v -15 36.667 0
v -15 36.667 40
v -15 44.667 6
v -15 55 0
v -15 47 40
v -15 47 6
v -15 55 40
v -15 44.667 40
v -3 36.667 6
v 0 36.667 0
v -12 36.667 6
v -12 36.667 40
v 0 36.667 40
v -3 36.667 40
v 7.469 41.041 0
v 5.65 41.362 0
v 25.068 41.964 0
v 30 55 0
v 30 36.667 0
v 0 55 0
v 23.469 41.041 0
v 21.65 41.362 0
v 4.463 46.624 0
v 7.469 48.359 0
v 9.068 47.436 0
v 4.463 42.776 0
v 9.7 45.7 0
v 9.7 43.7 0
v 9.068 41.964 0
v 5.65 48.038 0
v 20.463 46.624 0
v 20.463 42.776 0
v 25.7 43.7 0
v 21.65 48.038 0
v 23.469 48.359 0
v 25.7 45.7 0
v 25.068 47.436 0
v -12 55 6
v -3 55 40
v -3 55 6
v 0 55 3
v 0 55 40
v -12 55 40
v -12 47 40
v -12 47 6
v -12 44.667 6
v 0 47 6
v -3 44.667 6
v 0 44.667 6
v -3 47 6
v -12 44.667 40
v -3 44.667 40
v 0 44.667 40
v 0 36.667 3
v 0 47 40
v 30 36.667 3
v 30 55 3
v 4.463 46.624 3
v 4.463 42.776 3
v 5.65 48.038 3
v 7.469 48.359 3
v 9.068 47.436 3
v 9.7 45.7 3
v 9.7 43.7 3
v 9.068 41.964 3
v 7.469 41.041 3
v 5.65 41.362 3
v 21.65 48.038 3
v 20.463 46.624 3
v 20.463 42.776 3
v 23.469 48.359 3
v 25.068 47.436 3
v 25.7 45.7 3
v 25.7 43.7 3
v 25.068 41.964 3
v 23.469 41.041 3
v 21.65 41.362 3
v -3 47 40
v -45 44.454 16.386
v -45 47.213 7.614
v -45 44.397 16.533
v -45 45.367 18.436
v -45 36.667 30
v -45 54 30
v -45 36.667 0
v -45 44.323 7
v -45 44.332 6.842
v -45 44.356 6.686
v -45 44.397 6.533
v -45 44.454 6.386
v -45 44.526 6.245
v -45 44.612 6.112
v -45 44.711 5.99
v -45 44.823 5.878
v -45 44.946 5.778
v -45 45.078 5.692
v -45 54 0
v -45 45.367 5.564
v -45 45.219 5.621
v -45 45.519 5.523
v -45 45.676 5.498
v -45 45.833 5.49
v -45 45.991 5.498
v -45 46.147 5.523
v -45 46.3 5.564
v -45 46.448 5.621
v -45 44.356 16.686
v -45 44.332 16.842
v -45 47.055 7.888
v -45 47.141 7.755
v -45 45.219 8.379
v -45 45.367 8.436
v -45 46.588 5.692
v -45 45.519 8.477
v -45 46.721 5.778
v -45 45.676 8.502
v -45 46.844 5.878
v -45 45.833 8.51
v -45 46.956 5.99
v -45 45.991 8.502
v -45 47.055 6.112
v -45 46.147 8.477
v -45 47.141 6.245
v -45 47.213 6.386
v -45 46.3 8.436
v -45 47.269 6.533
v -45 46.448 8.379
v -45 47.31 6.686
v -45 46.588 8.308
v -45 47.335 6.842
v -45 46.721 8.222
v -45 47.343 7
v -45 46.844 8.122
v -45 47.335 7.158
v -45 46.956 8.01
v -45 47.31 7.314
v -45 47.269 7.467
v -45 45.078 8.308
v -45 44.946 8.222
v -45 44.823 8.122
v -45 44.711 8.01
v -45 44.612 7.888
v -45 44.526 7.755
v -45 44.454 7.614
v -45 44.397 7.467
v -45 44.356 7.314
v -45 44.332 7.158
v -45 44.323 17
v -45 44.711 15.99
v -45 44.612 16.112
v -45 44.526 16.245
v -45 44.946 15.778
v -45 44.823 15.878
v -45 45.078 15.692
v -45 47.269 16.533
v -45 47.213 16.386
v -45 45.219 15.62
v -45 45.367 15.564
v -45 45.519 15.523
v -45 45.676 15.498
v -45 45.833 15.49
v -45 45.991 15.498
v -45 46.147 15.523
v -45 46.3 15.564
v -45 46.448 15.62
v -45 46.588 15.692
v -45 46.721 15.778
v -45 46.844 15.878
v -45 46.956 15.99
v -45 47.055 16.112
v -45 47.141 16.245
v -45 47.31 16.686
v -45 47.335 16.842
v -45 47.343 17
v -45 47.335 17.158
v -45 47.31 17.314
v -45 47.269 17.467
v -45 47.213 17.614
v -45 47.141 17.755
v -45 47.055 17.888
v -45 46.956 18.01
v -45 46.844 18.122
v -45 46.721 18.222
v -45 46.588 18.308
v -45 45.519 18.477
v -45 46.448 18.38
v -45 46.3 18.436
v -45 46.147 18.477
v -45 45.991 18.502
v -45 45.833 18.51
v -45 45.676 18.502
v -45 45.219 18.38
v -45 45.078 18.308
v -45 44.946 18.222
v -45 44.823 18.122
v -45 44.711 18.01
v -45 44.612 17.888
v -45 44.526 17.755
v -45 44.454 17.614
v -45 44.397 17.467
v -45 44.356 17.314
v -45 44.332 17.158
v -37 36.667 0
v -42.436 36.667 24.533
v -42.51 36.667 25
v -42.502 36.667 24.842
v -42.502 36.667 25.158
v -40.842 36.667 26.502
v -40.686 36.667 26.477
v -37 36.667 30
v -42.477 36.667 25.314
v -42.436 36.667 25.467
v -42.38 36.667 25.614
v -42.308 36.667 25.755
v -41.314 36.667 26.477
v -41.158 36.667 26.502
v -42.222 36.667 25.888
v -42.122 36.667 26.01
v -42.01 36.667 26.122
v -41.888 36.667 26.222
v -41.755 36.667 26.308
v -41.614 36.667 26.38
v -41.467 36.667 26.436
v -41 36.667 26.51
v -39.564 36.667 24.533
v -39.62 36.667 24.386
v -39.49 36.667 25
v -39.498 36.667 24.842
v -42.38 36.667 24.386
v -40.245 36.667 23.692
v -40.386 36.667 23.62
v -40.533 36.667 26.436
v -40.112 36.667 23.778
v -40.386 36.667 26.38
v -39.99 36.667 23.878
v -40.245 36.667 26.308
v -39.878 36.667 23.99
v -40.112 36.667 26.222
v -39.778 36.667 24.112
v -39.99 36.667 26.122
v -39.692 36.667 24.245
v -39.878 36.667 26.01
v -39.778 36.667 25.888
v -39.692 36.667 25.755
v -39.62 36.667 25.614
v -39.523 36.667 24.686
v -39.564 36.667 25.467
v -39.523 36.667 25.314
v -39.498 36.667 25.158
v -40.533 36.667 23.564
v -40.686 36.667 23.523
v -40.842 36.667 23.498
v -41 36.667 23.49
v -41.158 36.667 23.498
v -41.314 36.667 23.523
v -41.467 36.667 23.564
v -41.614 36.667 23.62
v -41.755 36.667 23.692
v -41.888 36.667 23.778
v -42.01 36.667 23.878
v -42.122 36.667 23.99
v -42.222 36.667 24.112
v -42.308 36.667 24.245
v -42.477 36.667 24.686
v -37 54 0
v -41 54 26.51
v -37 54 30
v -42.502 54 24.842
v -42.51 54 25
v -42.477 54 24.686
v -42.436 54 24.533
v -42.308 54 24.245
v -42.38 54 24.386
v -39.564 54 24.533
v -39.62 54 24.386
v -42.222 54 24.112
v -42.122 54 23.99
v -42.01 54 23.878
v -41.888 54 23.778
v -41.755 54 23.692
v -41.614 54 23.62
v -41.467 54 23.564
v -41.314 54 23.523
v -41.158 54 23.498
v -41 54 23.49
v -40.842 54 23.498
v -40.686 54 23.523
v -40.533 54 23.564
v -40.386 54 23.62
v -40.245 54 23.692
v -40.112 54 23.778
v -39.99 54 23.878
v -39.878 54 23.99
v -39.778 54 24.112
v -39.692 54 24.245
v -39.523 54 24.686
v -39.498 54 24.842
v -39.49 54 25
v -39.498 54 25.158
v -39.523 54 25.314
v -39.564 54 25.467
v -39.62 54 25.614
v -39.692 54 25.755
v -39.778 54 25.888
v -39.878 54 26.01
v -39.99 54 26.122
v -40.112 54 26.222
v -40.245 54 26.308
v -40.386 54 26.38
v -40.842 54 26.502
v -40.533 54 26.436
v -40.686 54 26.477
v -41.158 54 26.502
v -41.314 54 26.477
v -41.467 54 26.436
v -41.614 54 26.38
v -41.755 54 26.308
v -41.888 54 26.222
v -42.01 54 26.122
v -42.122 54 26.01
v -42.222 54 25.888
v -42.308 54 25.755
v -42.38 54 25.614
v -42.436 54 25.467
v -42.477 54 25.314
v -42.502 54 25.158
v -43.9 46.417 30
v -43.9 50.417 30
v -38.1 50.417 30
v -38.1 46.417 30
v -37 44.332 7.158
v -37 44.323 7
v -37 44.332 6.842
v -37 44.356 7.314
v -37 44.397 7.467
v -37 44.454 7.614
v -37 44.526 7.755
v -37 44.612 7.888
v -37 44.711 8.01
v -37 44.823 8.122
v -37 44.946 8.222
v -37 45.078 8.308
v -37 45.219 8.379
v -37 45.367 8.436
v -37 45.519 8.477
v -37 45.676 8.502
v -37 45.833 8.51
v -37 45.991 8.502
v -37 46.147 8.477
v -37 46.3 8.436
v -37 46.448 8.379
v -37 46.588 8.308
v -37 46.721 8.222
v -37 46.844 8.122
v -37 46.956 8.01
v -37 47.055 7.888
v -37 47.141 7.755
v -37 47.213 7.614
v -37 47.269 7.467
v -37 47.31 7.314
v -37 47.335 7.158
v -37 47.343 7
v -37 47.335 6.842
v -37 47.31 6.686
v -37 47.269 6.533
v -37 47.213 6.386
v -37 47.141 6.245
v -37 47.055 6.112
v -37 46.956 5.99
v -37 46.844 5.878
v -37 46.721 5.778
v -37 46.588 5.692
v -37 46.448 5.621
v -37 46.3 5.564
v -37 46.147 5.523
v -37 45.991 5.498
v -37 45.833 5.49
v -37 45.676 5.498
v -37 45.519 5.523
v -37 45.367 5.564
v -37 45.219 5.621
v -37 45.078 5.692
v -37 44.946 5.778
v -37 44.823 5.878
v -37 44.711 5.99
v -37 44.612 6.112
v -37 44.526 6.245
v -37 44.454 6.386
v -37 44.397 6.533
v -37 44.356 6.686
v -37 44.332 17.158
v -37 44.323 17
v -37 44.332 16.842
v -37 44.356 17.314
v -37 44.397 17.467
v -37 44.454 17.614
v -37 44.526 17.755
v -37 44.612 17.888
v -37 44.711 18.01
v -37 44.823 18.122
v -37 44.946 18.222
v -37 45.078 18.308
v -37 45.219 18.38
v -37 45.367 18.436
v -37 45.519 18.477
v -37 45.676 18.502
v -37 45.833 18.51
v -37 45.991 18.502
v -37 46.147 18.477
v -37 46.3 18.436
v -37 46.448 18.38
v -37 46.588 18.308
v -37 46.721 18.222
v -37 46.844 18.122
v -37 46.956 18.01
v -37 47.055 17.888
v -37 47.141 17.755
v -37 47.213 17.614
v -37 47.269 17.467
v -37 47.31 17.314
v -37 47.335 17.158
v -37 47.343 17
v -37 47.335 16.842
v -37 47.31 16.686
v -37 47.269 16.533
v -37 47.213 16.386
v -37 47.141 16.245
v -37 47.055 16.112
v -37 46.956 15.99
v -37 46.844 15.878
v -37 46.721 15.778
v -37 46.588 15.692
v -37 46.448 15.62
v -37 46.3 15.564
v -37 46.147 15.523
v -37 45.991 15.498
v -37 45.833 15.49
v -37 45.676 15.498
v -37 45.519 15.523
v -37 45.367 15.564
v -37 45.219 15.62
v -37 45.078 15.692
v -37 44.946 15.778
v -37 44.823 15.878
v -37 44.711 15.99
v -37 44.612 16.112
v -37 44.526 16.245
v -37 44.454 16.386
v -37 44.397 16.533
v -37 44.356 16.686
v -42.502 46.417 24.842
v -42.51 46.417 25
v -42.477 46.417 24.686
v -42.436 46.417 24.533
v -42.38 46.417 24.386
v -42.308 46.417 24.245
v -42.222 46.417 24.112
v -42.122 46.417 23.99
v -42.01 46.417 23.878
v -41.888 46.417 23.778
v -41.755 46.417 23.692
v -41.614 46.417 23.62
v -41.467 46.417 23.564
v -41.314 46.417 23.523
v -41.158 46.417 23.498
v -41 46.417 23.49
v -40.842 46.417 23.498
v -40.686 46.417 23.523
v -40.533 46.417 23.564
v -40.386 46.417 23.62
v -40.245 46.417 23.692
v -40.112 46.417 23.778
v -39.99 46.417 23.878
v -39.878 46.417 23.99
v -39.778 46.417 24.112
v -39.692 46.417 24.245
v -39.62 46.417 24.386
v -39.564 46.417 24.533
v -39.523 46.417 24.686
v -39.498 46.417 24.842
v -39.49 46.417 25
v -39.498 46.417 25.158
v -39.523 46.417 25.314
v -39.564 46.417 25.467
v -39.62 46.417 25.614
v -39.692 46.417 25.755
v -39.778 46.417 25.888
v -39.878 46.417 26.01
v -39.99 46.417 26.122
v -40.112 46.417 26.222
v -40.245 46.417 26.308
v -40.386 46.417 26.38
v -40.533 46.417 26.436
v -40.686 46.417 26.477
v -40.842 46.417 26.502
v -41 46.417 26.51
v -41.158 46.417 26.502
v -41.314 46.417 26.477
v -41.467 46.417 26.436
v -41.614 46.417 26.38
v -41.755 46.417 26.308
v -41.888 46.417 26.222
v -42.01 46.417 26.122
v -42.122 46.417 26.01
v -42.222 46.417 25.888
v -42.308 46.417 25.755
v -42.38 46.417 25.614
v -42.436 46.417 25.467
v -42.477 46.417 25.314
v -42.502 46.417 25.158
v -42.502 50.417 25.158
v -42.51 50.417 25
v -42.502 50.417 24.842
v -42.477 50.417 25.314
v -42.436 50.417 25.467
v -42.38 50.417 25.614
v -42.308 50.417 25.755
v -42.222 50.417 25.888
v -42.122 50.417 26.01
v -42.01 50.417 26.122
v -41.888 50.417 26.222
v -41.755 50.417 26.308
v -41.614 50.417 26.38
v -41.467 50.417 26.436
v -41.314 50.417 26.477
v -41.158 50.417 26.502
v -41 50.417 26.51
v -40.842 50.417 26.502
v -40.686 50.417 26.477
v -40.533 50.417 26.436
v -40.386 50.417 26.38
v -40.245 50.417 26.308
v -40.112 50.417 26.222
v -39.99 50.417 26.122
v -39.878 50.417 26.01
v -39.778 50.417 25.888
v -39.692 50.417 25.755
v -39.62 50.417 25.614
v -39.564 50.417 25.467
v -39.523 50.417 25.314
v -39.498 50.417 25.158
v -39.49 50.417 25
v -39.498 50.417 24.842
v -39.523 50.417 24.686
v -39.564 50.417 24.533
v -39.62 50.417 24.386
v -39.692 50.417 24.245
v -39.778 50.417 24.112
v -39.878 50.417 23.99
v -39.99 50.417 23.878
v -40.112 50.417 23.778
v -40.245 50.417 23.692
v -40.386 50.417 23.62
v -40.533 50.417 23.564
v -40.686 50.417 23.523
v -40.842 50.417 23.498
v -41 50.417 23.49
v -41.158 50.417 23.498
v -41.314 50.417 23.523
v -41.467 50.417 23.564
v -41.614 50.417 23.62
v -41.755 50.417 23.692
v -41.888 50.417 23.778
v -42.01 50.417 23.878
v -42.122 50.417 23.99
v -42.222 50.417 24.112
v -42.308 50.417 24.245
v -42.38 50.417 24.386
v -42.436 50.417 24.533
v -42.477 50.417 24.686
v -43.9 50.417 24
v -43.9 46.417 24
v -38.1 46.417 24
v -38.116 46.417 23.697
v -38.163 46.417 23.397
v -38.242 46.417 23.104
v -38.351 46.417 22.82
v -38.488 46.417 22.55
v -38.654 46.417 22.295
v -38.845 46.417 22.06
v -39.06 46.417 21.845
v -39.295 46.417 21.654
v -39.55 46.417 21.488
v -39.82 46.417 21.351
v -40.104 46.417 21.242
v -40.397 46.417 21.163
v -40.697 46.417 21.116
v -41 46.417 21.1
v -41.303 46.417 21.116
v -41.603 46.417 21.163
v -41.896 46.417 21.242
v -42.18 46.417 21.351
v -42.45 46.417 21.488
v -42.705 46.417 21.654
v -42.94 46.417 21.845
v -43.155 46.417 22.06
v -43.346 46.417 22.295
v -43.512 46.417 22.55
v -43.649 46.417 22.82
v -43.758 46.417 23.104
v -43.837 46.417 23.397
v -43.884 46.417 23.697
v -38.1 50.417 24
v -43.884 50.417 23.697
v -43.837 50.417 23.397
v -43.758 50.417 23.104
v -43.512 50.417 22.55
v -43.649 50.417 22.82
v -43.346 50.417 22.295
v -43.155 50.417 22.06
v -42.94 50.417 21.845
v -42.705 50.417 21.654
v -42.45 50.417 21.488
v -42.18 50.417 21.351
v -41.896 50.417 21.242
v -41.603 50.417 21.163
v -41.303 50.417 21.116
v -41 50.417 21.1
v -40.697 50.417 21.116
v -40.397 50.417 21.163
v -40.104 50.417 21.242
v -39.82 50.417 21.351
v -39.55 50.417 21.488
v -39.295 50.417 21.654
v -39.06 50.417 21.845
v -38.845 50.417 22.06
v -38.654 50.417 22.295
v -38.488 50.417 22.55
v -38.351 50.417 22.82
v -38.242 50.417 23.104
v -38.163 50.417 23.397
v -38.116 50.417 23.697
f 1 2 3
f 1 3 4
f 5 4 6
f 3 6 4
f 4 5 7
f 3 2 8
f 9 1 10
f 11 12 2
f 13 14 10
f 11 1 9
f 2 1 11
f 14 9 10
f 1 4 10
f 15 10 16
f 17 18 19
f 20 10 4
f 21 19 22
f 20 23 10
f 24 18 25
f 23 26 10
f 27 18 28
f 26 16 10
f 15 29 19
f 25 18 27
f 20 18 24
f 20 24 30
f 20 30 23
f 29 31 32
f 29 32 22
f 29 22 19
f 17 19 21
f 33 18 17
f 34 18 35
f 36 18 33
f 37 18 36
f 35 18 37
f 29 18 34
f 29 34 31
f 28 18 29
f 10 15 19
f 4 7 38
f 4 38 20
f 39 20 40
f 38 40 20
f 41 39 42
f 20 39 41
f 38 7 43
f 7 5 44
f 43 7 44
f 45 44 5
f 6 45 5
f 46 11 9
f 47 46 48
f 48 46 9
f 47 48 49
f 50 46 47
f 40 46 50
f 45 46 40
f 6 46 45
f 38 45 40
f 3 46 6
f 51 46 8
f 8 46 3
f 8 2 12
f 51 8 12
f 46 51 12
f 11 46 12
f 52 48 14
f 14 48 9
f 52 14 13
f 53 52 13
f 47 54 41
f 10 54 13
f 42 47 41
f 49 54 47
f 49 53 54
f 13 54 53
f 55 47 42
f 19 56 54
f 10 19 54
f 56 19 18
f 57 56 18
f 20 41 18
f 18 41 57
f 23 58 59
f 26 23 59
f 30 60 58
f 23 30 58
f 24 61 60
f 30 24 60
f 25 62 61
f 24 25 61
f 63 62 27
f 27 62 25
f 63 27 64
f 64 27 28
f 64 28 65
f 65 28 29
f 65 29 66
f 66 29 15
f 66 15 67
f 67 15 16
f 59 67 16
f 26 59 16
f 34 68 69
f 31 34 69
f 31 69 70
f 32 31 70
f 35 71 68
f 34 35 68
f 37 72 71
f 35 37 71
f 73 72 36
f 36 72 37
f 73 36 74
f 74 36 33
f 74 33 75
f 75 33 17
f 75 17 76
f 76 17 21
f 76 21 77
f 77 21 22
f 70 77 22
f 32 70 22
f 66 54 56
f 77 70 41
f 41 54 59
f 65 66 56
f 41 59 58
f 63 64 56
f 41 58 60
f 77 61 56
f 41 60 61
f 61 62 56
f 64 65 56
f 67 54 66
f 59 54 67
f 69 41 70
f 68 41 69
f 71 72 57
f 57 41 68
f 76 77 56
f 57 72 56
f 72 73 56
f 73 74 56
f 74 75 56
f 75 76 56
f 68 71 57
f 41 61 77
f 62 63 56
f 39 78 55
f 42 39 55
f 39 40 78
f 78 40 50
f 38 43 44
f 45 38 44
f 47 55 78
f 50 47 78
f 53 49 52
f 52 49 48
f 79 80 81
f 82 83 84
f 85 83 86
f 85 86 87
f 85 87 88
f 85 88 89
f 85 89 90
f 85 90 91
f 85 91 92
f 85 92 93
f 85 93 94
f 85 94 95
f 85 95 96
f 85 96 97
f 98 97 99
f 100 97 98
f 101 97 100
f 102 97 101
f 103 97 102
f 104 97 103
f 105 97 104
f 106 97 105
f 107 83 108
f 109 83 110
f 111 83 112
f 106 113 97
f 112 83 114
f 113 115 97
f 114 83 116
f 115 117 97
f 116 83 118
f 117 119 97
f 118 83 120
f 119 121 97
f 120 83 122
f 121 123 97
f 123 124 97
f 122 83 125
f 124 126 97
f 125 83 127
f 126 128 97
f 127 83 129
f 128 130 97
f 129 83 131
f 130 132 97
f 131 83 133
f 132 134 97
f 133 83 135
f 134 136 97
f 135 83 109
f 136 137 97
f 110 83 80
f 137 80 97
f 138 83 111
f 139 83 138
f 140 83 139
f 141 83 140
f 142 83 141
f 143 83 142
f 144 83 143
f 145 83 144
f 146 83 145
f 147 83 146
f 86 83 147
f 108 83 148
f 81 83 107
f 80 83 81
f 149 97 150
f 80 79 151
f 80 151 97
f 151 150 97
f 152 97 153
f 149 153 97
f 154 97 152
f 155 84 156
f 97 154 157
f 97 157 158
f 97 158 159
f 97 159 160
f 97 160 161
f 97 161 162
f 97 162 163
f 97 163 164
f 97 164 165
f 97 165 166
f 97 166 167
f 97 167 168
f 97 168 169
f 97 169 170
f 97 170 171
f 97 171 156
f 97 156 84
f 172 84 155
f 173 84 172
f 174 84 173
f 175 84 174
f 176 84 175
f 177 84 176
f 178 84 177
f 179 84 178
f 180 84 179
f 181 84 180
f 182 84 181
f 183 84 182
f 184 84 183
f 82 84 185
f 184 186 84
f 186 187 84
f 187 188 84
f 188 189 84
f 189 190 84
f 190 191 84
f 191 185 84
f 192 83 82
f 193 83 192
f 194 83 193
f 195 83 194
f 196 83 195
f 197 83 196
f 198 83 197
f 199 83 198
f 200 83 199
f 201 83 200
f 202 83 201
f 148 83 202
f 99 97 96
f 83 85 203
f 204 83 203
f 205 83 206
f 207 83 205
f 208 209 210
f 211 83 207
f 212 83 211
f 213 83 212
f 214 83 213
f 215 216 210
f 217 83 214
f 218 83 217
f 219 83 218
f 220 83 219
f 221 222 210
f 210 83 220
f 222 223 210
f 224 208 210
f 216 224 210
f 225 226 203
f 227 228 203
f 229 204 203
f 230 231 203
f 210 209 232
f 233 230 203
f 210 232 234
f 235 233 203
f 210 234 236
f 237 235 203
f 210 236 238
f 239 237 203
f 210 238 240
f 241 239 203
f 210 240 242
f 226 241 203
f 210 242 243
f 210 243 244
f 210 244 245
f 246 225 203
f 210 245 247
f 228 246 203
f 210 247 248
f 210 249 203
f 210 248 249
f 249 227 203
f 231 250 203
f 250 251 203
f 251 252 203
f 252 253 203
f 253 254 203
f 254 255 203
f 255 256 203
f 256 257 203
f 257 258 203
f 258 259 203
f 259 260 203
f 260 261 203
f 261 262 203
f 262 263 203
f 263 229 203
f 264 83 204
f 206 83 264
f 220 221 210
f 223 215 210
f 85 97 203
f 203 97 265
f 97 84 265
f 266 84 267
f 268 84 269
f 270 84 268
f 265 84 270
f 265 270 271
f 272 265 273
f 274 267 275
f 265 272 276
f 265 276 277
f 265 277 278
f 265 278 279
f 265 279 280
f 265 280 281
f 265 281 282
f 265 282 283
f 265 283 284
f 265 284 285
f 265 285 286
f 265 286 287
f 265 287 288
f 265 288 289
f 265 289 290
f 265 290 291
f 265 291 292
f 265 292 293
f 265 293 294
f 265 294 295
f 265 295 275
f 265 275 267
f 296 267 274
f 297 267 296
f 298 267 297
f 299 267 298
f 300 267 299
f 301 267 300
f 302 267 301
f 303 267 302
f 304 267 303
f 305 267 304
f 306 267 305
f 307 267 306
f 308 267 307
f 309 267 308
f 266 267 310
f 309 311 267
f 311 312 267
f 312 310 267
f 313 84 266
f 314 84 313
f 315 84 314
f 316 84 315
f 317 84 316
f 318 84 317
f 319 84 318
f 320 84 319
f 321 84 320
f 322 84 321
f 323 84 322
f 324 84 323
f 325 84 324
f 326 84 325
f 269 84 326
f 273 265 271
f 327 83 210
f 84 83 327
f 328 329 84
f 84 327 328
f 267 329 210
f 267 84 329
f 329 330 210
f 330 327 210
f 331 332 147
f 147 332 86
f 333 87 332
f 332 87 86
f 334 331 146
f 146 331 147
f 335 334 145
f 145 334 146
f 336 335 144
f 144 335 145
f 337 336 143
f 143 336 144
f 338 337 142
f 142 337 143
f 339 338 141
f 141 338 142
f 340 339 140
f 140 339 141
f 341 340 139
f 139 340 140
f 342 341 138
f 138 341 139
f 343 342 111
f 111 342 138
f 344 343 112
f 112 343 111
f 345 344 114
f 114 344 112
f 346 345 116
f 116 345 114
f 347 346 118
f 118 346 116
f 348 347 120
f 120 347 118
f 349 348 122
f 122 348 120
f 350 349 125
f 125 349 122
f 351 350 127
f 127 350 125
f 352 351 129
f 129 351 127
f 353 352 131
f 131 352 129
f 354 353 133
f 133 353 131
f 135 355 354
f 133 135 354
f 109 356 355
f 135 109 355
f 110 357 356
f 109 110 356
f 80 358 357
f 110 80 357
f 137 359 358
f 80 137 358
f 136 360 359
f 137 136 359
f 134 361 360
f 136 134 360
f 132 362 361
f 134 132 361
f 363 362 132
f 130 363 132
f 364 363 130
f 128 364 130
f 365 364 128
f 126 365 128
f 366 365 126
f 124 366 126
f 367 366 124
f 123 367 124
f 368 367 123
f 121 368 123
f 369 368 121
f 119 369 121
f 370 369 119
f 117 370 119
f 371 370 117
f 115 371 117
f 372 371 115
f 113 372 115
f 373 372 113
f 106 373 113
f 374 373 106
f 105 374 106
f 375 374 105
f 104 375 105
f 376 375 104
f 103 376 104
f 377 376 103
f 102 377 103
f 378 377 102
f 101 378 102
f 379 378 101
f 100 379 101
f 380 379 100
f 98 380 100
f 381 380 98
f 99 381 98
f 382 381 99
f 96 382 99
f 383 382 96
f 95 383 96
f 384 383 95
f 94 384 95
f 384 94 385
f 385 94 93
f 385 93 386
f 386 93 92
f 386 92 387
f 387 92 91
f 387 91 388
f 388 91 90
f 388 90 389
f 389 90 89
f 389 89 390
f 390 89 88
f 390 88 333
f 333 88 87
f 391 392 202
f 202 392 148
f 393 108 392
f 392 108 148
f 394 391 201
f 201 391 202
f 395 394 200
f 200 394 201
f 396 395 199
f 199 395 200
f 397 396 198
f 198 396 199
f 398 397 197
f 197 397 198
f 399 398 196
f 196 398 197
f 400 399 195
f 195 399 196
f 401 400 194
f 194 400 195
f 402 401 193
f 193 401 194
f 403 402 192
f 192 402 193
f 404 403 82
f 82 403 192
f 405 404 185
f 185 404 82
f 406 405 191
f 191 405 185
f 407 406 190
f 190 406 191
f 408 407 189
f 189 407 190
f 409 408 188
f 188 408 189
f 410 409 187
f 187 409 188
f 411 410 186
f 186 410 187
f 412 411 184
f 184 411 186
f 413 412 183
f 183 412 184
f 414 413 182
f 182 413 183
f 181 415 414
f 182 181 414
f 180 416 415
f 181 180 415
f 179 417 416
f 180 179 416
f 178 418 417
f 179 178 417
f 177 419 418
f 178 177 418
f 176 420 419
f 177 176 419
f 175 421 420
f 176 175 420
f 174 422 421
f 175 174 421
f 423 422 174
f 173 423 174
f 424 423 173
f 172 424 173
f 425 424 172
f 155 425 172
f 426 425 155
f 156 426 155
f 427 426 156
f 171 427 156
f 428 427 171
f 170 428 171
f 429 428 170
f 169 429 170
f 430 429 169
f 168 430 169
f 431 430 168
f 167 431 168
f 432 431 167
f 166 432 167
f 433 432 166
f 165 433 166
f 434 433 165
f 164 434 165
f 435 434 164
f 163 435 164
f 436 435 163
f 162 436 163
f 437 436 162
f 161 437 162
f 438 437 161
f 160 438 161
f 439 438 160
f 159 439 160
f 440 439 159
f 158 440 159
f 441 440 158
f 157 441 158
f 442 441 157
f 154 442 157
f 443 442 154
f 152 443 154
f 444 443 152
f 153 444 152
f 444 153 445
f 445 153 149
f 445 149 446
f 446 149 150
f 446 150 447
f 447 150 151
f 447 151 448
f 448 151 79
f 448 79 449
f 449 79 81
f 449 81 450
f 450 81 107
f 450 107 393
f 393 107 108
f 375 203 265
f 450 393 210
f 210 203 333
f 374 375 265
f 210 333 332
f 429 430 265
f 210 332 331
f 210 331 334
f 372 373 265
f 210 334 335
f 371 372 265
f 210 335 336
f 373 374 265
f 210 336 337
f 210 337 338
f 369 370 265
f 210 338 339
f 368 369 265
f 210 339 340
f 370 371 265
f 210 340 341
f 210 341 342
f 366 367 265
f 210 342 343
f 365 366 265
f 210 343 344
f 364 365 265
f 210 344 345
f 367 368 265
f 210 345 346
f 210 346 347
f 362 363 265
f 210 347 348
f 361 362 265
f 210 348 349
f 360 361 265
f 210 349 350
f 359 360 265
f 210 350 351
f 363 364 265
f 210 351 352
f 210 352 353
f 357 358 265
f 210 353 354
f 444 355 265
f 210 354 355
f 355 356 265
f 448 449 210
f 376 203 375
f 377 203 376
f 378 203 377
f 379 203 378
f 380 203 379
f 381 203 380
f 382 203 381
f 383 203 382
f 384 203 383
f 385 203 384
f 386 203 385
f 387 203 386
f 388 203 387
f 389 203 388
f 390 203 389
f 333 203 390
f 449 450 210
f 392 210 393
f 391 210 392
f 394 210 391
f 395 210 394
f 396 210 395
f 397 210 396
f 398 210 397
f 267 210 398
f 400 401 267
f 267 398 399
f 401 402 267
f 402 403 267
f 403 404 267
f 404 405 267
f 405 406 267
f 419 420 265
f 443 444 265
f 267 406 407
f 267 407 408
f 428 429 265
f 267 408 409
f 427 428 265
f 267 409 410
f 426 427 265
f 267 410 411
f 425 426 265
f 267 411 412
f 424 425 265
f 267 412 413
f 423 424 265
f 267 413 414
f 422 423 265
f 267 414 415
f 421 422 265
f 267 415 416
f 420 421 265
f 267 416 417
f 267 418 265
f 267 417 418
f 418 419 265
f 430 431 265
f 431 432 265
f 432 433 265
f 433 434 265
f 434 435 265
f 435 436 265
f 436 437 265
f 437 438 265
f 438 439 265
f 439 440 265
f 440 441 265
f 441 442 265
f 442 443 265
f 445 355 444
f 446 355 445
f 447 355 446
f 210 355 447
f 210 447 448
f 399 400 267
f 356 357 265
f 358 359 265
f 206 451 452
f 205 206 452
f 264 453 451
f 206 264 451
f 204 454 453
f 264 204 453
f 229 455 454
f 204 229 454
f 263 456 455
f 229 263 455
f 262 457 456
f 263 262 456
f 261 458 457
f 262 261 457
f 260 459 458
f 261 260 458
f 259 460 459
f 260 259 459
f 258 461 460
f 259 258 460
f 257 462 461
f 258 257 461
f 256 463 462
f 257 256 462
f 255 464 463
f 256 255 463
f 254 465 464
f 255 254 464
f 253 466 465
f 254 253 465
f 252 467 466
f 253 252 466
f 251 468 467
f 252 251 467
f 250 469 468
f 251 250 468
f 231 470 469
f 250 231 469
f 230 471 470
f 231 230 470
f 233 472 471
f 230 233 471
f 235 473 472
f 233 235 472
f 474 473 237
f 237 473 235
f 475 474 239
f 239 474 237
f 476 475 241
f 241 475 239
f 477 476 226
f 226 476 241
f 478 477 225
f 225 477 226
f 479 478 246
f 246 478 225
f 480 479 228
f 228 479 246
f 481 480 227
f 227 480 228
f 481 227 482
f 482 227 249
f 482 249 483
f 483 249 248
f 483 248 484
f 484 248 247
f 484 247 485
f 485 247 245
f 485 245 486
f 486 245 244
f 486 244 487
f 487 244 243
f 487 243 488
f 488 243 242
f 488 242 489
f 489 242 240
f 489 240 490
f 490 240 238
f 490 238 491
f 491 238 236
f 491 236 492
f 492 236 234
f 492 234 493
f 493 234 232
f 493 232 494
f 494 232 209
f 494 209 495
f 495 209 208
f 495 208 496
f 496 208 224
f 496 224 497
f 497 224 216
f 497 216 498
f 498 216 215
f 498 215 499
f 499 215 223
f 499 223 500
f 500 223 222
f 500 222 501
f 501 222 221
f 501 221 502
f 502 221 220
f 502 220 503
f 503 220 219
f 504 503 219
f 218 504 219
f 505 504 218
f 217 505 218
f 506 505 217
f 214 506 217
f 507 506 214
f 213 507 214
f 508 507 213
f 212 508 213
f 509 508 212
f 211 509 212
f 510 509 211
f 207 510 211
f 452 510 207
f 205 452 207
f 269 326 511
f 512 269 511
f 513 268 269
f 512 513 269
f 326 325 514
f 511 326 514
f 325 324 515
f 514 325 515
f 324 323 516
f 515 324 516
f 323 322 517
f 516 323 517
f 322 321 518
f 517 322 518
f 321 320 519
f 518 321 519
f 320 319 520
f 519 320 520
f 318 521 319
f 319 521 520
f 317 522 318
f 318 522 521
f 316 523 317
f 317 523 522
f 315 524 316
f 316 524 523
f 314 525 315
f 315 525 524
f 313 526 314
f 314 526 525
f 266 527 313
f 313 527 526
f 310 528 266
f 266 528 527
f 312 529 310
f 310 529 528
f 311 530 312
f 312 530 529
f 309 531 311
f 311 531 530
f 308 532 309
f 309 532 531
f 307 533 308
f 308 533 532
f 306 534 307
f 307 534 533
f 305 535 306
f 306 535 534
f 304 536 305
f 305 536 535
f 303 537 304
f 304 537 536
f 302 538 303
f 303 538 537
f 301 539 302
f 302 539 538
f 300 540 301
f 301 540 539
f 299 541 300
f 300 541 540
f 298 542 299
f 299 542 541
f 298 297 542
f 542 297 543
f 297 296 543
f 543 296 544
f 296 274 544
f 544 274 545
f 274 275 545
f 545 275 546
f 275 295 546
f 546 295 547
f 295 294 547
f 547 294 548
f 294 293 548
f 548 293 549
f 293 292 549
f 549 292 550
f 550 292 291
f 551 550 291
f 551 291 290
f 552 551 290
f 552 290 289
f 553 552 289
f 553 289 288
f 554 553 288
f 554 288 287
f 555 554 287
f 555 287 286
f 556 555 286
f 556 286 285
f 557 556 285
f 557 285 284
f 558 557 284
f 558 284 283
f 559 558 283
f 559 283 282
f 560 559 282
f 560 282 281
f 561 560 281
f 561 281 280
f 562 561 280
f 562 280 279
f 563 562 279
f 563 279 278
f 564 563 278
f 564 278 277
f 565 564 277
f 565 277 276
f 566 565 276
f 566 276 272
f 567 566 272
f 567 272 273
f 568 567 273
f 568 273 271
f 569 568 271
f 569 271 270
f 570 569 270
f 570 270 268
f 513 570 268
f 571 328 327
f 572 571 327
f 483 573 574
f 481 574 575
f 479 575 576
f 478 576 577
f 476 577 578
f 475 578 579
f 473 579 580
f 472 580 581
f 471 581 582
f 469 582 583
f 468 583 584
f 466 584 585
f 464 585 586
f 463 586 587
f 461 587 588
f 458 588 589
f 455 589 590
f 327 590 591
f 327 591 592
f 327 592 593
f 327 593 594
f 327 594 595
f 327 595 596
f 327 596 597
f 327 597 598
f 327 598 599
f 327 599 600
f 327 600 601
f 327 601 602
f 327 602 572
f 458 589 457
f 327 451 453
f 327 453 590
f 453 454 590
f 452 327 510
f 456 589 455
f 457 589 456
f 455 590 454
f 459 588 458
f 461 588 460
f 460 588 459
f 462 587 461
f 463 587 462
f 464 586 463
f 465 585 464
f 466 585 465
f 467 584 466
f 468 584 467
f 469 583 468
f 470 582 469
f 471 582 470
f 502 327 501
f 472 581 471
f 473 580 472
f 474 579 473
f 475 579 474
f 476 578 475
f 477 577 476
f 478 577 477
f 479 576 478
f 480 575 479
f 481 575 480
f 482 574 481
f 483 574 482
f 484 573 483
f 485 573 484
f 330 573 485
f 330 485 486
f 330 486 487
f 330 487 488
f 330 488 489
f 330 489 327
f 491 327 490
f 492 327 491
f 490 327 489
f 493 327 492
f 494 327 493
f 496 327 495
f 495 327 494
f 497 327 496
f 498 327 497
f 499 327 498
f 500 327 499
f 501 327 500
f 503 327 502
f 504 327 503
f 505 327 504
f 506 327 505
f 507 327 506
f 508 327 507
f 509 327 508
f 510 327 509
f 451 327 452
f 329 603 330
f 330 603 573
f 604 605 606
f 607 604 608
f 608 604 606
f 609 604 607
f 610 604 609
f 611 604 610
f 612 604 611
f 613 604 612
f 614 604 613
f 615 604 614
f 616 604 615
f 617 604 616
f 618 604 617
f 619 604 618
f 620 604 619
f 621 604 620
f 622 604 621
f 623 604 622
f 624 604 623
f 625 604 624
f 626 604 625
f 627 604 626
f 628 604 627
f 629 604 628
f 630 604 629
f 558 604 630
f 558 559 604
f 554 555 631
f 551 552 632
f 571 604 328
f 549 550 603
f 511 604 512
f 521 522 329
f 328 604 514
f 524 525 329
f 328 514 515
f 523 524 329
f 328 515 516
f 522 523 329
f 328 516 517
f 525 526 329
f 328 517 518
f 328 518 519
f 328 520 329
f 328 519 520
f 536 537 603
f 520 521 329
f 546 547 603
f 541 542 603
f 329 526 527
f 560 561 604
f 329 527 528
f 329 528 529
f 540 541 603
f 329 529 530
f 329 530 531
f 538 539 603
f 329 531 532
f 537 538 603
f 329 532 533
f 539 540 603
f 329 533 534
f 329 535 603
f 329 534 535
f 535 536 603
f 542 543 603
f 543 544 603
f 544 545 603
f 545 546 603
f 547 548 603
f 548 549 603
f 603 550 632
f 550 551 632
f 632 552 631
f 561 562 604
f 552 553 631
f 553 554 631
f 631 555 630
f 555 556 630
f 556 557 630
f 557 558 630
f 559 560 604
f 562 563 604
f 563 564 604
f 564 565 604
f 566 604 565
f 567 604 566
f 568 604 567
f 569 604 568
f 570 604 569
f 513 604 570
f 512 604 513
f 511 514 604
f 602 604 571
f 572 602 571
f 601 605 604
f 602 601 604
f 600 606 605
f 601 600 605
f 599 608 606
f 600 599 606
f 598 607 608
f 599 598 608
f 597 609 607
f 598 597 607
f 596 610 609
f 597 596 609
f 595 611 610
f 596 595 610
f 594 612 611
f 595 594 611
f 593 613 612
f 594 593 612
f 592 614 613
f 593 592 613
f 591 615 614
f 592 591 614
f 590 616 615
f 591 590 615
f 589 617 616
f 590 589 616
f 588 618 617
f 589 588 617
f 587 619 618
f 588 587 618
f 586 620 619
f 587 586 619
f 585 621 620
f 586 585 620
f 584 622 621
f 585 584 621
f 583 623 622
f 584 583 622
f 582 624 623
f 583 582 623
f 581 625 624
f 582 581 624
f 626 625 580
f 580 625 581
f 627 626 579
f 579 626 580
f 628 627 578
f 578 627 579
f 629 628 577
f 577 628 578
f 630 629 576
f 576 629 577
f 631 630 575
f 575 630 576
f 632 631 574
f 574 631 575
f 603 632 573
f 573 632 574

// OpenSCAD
l1=30;
l2=55;
h=3;
r5=2.5*1.08;
r3=1.5*1.08;
difference(){
cube([l1,l2,h]);
translate([0,-l2/3,0]){cube([l1,l2,h]);}
hull(){for(i=[0:1]){translate([l1-7,38+(5+r5)-(2*(1-i)),0]){cylinder(2*h,r5,r5,true);}}}
hull(){for(i=[0:1]){translate([l1-23,38+(5+r5)-(2*(1-i)),0]){cylinder(2*h,r5,r5,true);}}}
//translate([l1-23,(5+r3),0]){cylinder(2*h,r3,r3,true);}
//translate([l1-23,20+(5+r3),0]){cylinder(2*h,r3,r3,true);}
}
h2=15;
l3=40;
dy=16;
difference(){
translate([-h2,l2*2/3,0]){cube([h2,l2/3,l3]);}
translate([-h2+3,l2*2/3,6]){cube([h2-6,l2/3,l3]);}
translate([-h2,(l2*2/3)+(dy/2),6]){cube([h2,l2/3-dy,l3]);}
}


translate([-h2*3,l2*2/3,0]){
	difference(){
		cube([h2-6-1,l2/3-1,l3*0.75]);
		for(i=[7,17]){translate([-5,l2/6,i]){
		rotate([0,90,0]){cylinder(30,1.51,1.51,$fn=60);}
		}}
		translate([(h2-7)/2,l2/2.4,25]){
			rotate([90,0,0]){cylinder(30,1.51,1.51,$fn=60);}
		}
		
	hull(){for(i=[0:1]){
		translate([(h2-7)/2,l2/4,30-6*i]){
			rotate([90,0,0]){cylinder(4,2.9,2.9,$fn=60);}
		}
	}}
	}
}
//1.8
